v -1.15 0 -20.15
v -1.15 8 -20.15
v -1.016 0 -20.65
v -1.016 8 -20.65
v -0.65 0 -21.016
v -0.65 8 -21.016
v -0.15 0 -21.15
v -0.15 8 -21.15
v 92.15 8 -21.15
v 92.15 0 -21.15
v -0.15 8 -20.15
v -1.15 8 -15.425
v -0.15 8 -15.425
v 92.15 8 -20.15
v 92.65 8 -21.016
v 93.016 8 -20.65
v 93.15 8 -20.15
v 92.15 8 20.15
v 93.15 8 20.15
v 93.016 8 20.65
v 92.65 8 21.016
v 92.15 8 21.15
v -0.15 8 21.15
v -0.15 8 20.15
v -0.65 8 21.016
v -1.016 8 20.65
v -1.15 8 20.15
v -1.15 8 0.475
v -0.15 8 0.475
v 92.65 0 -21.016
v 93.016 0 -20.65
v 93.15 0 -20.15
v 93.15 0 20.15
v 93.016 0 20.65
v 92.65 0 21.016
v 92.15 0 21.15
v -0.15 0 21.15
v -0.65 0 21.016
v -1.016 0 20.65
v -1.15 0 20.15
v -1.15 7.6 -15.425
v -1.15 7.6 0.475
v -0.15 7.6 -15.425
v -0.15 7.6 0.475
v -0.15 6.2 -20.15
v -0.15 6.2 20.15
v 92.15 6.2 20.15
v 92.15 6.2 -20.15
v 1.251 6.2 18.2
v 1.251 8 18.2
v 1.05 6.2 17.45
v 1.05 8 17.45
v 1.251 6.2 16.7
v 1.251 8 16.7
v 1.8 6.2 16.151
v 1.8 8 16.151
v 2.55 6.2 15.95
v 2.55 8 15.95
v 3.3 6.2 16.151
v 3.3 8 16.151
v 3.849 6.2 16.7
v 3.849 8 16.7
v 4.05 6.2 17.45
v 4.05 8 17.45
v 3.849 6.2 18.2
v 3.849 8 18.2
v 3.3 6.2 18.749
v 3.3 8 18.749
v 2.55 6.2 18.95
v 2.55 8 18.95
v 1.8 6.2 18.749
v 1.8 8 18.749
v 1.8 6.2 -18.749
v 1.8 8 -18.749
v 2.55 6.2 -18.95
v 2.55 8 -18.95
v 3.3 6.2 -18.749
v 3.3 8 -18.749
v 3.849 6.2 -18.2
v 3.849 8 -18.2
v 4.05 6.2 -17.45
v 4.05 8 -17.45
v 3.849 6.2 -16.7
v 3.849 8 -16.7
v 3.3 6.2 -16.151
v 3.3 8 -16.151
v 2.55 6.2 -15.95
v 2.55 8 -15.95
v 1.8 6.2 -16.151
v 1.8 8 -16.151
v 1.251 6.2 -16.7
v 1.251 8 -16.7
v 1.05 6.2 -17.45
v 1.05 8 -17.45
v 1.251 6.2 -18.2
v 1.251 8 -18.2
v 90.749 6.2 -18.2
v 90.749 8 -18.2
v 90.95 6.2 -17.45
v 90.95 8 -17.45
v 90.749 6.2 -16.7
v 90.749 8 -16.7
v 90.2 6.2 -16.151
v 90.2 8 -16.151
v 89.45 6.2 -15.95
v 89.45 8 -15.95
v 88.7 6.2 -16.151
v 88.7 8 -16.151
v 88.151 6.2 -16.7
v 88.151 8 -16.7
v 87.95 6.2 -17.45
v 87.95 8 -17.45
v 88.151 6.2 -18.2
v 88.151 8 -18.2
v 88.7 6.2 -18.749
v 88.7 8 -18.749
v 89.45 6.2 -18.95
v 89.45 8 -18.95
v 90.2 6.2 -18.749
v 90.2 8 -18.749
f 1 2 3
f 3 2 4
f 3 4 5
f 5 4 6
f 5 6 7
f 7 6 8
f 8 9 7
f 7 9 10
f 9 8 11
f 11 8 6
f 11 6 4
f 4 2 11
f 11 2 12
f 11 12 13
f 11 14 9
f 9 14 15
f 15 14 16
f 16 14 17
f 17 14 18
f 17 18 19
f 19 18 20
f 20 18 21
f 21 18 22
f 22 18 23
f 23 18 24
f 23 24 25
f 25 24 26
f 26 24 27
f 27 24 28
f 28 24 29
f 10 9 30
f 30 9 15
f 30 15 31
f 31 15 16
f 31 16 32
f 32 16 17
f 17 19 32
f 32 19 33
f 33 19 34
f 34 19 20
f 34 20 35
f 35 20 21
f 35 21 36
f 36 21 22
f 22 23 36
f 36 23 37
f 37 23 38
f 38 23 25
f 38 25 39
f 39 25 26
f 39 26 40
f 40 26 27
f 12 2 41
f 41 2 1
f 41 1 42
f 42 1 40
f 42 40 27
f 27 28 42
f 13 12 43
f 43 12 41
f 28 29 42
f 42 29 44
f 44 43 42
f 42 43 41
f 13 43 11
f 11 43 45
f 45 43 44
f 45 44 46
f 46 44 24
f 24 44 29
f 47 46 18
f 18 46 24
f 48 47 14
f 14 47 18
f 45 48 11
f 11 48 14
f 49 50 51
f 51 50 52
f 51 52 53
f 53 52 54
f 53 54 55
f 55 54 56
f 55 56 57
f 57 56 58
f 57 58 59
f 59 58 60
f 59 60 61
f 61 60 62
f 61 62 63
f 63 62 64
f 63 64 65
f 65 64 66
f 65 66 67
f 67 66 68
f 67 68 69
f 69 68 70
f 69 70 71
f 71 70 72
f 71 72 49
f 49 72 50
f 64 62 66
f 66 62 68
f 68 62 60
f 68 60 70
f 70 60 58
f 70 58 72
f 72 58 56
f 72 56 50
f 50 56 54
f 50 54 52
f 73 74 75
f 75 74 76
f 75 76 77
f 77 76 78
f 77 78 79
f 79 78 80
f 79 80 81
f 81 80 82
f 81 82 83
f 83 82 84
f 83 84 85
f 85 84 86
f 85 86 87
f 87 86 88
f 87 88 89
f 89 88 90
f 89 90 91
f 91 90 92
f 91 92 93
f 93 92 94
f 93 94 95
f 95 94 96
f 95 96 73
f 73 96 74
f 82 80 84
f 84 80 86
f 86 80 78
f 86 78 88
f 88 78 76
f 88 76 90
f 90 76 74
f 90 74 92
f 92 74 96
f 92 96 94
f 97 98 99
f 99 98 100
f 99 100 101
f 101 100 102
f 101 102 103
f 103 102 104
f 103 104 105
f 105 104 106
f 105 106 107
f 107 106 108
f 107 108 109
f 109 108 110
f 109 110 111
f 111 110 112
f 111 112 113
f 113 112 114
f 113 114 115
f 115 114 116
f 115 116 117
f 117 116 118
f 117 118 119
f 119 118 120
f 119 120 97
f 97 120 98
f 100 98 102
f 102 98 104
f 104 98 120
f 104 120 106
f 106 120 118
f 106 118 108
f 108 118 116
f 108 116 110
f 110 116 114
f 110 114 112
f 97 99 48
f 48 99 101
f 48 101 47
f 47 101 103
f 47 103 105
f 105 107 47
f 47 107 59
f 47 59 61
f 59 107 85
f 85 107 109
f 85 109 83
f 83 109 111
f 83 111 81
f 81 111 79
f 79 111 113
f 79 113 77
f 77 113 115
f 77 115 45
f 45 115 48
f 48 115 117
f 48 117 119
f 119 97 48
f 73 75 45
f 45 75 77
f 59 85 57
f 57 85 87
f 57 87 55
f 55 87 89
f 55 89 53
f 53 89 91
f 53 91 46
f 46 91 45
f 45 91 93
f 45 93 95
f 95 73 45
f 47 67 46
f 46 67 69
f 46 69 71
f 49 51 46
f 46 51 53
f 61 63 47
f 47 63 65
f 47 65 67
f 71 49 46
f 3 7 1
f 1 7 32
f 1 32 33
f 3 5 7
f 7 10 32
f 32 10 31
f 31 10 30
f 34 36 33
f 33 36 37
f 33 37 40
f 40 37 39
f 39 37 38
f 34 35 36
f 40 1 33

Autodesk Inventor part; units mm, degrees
ref_plane "YZ Plane" through (0, 0, 0) normal (1, 0, 0) x (0, 1, 0)
ref_plane "XZ Plane" through (0, 0, 0) normal (0, 1, 0) x (-1, 0, 0)
ref_plane "XY Plane" through (0, 0, 0) normal (0, 0, 1) x (1, 0, 0)
sketch "Sketch1" plane through (0, 0, 0) normal (0, 1, 0) x (-1, 0, 0)
  line L0 (0, 20) -> (-92, 20)
  line L1 (-92, 20) -> (-92, -20)
  line L2 (-92, -20) -> (0, -20)
  line L3 (0, -20) -> (0, 20)
  line L4 (-46, 20) -> (-46, -20) construction
  line L5 (0, 0) -> (-92, 0) construction
  line L6 (0.15, 20.15) -> (-92.15, 20.15)
  line L7 (-92.15, 20.15) -> (-92.15, -20.15)
  line L8 (-92.15, -20.15) -> (0.15, -20.15)
  line L9 (0.15, -20.15) -> (0.15, 20.15)
  dimension "d0" = 40
  dimension "d1" = 92
  dimension "d19" = 0.15
extrude "Extrusion1" add sketch "Sketch1" along normal blind 0.7 contours L3 L2 L1 L0 | L9 L8 L7 L6
sketch "Sketch2" plane through (0, 0.7, 0) normal (0, 1, 0) x (1, 0, 0)
  line L0 (92.15, -20.15) -> (92.15, 20.15) projected
  line L1 (92.15, 20.15) -> (-0.15, 20.15) projected
  line L2 (-0.15, 20.15) -> (-0.15, -20.15) projected
  line L3 (-0.15, -20.15) -> (92.15, -20.15) projected
  line L4 (1.05, -18.95) -> (1.05, 18.95)
  line L5 (1.05, 18.95) -> (90.95, 18.95)
  line L6 (90.95, 18.95) -> (90.95, -18.95)
  line L7 (90.95, -18.95) -> (1.05, -18.95)
  dimension "d20" = 1.2
extrude "Extrusion2" add sketch "Sketch2" along normal blind 5.5
sketch "Sketch4" plane through (0, 0, 0) normal (0, 1, 0) x (1, 0, 0)
  line L0 (1.05, -18.95) -> (90.95, -18.95) projected
  line L1 (90.95, -18.95) -> (90.95, 18.95) projected
  line L2 (90.95, 18.95) -> (1.05, 18.95) projected
  line L3 (1.05, 18.95) -> (1.05, -18.95) projected
  line L4 (92.15, 20.15) -> (-0.15, 20.15) projected
  line L5 (-0.15, 20.15) -> (-0.15, -20.15) projected
  line L6 (-0.15, -20.15) -> (92.15, -20.15) projected
  line L7 (92.15, -20.15) -> (92.15, 20.15) projected
  line L8 (1.05, -18.95) -> (1.05, 18.95) projected
  line L9 (1.05, 18.95) -> (90.95, 18.95) projected
  line L10 (90.95, 18.95) -> (90.95, -18.95) projected
  line L11 (90.95, -18.95) -> (1.05, -18.95) projected
  circle A0 centre (2.55, -17.45) radius 1.5
  circle A1 centre (2.55, 17.45) radius 1.5
  circle A2 centre (89.45, 17.45) radius 1.5
  line L12 (-1.15, -21.15) -> (-1.15, 21.15)
  line L13 (-1.15, 21.15) -> (93.15, 21.15)
  line L14 (93.15, 21.15) -> (93.15, -21.15)
  line L15 (93.15, -21.15) -> (-1.15, -21.15)
  line L16 (-0.15, 20.15) -> (-1.15, 20.15)
  line L17 (-0.15, -20.15) -> (-1.15, -20.15)
  line L18 (2.55, -17.45) -> (1.05, -17.45)
  line L19 (2.55, -17.45) -> (2.55, -18.95)
  line L20 (2.55, 17.45) -> (2.55, 18.95)
  line L21 (2.55, 17.45) -> (1.05, 17.45)
  line L22 (89.45, 17.45) -> (89.45, 18.95)
  line L23 (89.45, 17.45) -> (90.95, 17.45)
  circle A3 centre (2.55, -17.55) radius 1.6 projected
  point P0 (0, 0)
  dimension "d21" = 3
  dimension "d22" = 3
  dimension "d24" = 3
  dimension "d25" = 2.7
  dimension "d26" = 2.7
  dimension "d28" = 2.7
  dimension "d29" = 1
extrude "Extrusion3" add sketch "Sketch4" along normal blind 8 contours L19 L18 A0 | A0 L18 L19 | L21 L20 A1 | A1 L20 L21 | L23 L22 A2 | A2 L22 L23 | L4 L16 L12 L13 L14 L15 L17 L6 L7 | L5 L17 L12 L16
sketch "Sketch7" plane through (0, 8, 0) normal (0, 1, 0) x (1, 0, 0)
  line L0 (0.05, 14.425) -> (6.05, 14.425) projected
  line L1 (0.05, 0.525) -> (6.05, 0.525) projected
  line L2 (-1.15, 21.15) -> (-1.15, -21.15) projected
  line L3 (-1.15, -21.15) -> (93.15, -21.15) projected
  line L4 (93.15, -21.15) -> (93.15, 21.15) projected
  line L5 (93.15, 21.15) -> (-1.15, 21.15) projected
  line L6 (-0.15, 20.15) -> (92.15, 20.15) projected
  line L7 (92.15, 20.15) -> (92.15, -20.15) projected
  line L8 (92.15, -20.15) -> (-0.15, -20.15) projected
  line L9 (-0.15, -20.15) -> (-0.15, 20.15) projected
  line L10 (-0.15, 20.15) -> (-0.15, -20.15) projected
  line L11 (-1.15, 21.15) -> (-1.15, -21.15) projected
  line L12 (-0.15, 15.425) -> (-1.15, 15.425)
  line L13 (-1.15, 15.425) -> (-1.15, -0.475)
  line L14 (-1.15, -0.475) -> (-0.15, -0.475)
  line L15 (-0.15, -0.475) -> (-0.15, 15.425)
  point P0 (0, 0)
  point P1 (-0.15, -0.475)
  point P2 (-1.15, 15.425)
  dimension "d32" = 1
  dimension "d33" = 1
extrude "Extrusion4" cut sketch "Sketch7" against normal blind 0.4 contours L12 L9 L14 L2
sketch "Sketch8" plane through (0, 0.7, 0) normal (0, 1, 0) x (1, 0, 0)
  circle A0 centre (55.0598, -12.05) radius 4.4577 projected
  circle A1 centre (60.1398, -17.13) radius 0.9906 projected
  circle A2 centre (49.9798, -6.97) radius 0.9906 projected
  circle A3 centre (49.9798, -6.97) radius 0.8406
  circle A4 centre (60.1398, -17.13) radius 0.8406
  point P0 (0, 0)
  dimension "d37" = 0.15
  dimension "d38" = 0.15
extrude "Extrusion5" [suppressed]
sketch "Sketch9" plane through (0, 0.7, 0) normal (0, 1, 0) x (1, 0, 0)
  arc A0 (1.05, 17.45) -> (2.55, 18.95) centre (2.55, 17.45) ccw projected
  arc A1 (89.45, 18.95) -> (90.95, 17.45) centre (89.45, 17.45) ccw projected
  arc A2 (1.05, -17.45) -> (2.55, -18.95) centre (2.55, -17.45) ccw projected
  line L0 (90.95, 18.95) -> (89.45, 18.95) projected
  line L1 (1.05, 18.95) -> (1.05, 17.45) projected
  circle A3 centre (2.55, 17.45) radius 1.5 projected
  circle A4 centre (2.55, -17.45) radius 1.5 projected
  circle A5 centre (89.45, -17.45) radius 1.5 projected
  circle A6 centre (89.45, 17.45) radius 1.5 projected
  line L2 (2.55, 17.45) -> (1.05, 17.45)
  line L3 (2.55, 17.45) -> (2.55, 18.95)
  line L4 (89.45, 17.45) -> (89.45, 18.95)
  line L5 (89.45, 17.45) -> (90.95, 17.45)
  line L6 (89.45, -17.45) -> (89.45, -18.95)
  line L7 (89.45, -17.45) -> (90.95, -17.45)
  line L8 (2.55, -17.45) -> (1.05, -17.45)
  line L9 (2.55, -17.45) -> (2.55, -18.95)
  line L10 (1.05, 17.45) -> (1.05, -17.45) projected
  arc A7 (2.55, -18.95) -> (1.05, -17.45) centre (2.55, -17.45) ccw projected
  line L11 (2.55, -18.95) -> (90.95, -18.95) projected
  line L12 (90.95, -18.95) -> (90.95, 17.45) projected
  line L13 (89.45, 18.95) -> (2.55, 18.95) projected
  arc A8 (2.55, 18.95) -> (1.05, 17.45) centre (2.55, 17.45) ccw projected
  line L14 (2.55, 18.95) -> (1.05, 18.95) projected
  arc A9 (90.95, 17.45) -> (89.45, 18.95) centre (89.45, 17.45) ccw projected
  line L15 (90.95, 17.45) -> (90.95, 18.95) projected
  line L16 (1.05, -17.45) -> (1.05, -18.95) projected
  line L17 (1.05, -18.95) -> (2.55, -18.95) projected
  point P0 (0, 0)
  point P1 (90.95, 17.45)
  point P2 (89.45, 18.95)
  point P3 (2.55, 18.95)
  point P4 (1.05, 17.45)
  point P5 (2.55, -18.95)
  point P6 (1.05, -17.45)
extrude "Extrusion6" add sketch "Sketch9" along normal up to surface (5.5 mm away) contours L1 L14 A3 | A0 L13 A1 L12 A5 L11 A4 L10 | L8 L9 A2 | A4 L9 L8 | A2 L17 L16 | L0 L15 A6 | L6 L7 A5 | A5 L7 L6 | A5 L12 L11
fillet "Fillet1" radius 1 4 edges at (-1.15, 4, 21.15) (93.15, 4, 21.15) (93.15, 4, -21.15) (-1.15, 4, -21.15)
equation "\"d22\" = d21"
equation "\"d24\" = d21"
equation "\"d26\" = d25"
equation "\"d28\" = d25"
equation "\"d33\" = d32"
properties part number "base"
